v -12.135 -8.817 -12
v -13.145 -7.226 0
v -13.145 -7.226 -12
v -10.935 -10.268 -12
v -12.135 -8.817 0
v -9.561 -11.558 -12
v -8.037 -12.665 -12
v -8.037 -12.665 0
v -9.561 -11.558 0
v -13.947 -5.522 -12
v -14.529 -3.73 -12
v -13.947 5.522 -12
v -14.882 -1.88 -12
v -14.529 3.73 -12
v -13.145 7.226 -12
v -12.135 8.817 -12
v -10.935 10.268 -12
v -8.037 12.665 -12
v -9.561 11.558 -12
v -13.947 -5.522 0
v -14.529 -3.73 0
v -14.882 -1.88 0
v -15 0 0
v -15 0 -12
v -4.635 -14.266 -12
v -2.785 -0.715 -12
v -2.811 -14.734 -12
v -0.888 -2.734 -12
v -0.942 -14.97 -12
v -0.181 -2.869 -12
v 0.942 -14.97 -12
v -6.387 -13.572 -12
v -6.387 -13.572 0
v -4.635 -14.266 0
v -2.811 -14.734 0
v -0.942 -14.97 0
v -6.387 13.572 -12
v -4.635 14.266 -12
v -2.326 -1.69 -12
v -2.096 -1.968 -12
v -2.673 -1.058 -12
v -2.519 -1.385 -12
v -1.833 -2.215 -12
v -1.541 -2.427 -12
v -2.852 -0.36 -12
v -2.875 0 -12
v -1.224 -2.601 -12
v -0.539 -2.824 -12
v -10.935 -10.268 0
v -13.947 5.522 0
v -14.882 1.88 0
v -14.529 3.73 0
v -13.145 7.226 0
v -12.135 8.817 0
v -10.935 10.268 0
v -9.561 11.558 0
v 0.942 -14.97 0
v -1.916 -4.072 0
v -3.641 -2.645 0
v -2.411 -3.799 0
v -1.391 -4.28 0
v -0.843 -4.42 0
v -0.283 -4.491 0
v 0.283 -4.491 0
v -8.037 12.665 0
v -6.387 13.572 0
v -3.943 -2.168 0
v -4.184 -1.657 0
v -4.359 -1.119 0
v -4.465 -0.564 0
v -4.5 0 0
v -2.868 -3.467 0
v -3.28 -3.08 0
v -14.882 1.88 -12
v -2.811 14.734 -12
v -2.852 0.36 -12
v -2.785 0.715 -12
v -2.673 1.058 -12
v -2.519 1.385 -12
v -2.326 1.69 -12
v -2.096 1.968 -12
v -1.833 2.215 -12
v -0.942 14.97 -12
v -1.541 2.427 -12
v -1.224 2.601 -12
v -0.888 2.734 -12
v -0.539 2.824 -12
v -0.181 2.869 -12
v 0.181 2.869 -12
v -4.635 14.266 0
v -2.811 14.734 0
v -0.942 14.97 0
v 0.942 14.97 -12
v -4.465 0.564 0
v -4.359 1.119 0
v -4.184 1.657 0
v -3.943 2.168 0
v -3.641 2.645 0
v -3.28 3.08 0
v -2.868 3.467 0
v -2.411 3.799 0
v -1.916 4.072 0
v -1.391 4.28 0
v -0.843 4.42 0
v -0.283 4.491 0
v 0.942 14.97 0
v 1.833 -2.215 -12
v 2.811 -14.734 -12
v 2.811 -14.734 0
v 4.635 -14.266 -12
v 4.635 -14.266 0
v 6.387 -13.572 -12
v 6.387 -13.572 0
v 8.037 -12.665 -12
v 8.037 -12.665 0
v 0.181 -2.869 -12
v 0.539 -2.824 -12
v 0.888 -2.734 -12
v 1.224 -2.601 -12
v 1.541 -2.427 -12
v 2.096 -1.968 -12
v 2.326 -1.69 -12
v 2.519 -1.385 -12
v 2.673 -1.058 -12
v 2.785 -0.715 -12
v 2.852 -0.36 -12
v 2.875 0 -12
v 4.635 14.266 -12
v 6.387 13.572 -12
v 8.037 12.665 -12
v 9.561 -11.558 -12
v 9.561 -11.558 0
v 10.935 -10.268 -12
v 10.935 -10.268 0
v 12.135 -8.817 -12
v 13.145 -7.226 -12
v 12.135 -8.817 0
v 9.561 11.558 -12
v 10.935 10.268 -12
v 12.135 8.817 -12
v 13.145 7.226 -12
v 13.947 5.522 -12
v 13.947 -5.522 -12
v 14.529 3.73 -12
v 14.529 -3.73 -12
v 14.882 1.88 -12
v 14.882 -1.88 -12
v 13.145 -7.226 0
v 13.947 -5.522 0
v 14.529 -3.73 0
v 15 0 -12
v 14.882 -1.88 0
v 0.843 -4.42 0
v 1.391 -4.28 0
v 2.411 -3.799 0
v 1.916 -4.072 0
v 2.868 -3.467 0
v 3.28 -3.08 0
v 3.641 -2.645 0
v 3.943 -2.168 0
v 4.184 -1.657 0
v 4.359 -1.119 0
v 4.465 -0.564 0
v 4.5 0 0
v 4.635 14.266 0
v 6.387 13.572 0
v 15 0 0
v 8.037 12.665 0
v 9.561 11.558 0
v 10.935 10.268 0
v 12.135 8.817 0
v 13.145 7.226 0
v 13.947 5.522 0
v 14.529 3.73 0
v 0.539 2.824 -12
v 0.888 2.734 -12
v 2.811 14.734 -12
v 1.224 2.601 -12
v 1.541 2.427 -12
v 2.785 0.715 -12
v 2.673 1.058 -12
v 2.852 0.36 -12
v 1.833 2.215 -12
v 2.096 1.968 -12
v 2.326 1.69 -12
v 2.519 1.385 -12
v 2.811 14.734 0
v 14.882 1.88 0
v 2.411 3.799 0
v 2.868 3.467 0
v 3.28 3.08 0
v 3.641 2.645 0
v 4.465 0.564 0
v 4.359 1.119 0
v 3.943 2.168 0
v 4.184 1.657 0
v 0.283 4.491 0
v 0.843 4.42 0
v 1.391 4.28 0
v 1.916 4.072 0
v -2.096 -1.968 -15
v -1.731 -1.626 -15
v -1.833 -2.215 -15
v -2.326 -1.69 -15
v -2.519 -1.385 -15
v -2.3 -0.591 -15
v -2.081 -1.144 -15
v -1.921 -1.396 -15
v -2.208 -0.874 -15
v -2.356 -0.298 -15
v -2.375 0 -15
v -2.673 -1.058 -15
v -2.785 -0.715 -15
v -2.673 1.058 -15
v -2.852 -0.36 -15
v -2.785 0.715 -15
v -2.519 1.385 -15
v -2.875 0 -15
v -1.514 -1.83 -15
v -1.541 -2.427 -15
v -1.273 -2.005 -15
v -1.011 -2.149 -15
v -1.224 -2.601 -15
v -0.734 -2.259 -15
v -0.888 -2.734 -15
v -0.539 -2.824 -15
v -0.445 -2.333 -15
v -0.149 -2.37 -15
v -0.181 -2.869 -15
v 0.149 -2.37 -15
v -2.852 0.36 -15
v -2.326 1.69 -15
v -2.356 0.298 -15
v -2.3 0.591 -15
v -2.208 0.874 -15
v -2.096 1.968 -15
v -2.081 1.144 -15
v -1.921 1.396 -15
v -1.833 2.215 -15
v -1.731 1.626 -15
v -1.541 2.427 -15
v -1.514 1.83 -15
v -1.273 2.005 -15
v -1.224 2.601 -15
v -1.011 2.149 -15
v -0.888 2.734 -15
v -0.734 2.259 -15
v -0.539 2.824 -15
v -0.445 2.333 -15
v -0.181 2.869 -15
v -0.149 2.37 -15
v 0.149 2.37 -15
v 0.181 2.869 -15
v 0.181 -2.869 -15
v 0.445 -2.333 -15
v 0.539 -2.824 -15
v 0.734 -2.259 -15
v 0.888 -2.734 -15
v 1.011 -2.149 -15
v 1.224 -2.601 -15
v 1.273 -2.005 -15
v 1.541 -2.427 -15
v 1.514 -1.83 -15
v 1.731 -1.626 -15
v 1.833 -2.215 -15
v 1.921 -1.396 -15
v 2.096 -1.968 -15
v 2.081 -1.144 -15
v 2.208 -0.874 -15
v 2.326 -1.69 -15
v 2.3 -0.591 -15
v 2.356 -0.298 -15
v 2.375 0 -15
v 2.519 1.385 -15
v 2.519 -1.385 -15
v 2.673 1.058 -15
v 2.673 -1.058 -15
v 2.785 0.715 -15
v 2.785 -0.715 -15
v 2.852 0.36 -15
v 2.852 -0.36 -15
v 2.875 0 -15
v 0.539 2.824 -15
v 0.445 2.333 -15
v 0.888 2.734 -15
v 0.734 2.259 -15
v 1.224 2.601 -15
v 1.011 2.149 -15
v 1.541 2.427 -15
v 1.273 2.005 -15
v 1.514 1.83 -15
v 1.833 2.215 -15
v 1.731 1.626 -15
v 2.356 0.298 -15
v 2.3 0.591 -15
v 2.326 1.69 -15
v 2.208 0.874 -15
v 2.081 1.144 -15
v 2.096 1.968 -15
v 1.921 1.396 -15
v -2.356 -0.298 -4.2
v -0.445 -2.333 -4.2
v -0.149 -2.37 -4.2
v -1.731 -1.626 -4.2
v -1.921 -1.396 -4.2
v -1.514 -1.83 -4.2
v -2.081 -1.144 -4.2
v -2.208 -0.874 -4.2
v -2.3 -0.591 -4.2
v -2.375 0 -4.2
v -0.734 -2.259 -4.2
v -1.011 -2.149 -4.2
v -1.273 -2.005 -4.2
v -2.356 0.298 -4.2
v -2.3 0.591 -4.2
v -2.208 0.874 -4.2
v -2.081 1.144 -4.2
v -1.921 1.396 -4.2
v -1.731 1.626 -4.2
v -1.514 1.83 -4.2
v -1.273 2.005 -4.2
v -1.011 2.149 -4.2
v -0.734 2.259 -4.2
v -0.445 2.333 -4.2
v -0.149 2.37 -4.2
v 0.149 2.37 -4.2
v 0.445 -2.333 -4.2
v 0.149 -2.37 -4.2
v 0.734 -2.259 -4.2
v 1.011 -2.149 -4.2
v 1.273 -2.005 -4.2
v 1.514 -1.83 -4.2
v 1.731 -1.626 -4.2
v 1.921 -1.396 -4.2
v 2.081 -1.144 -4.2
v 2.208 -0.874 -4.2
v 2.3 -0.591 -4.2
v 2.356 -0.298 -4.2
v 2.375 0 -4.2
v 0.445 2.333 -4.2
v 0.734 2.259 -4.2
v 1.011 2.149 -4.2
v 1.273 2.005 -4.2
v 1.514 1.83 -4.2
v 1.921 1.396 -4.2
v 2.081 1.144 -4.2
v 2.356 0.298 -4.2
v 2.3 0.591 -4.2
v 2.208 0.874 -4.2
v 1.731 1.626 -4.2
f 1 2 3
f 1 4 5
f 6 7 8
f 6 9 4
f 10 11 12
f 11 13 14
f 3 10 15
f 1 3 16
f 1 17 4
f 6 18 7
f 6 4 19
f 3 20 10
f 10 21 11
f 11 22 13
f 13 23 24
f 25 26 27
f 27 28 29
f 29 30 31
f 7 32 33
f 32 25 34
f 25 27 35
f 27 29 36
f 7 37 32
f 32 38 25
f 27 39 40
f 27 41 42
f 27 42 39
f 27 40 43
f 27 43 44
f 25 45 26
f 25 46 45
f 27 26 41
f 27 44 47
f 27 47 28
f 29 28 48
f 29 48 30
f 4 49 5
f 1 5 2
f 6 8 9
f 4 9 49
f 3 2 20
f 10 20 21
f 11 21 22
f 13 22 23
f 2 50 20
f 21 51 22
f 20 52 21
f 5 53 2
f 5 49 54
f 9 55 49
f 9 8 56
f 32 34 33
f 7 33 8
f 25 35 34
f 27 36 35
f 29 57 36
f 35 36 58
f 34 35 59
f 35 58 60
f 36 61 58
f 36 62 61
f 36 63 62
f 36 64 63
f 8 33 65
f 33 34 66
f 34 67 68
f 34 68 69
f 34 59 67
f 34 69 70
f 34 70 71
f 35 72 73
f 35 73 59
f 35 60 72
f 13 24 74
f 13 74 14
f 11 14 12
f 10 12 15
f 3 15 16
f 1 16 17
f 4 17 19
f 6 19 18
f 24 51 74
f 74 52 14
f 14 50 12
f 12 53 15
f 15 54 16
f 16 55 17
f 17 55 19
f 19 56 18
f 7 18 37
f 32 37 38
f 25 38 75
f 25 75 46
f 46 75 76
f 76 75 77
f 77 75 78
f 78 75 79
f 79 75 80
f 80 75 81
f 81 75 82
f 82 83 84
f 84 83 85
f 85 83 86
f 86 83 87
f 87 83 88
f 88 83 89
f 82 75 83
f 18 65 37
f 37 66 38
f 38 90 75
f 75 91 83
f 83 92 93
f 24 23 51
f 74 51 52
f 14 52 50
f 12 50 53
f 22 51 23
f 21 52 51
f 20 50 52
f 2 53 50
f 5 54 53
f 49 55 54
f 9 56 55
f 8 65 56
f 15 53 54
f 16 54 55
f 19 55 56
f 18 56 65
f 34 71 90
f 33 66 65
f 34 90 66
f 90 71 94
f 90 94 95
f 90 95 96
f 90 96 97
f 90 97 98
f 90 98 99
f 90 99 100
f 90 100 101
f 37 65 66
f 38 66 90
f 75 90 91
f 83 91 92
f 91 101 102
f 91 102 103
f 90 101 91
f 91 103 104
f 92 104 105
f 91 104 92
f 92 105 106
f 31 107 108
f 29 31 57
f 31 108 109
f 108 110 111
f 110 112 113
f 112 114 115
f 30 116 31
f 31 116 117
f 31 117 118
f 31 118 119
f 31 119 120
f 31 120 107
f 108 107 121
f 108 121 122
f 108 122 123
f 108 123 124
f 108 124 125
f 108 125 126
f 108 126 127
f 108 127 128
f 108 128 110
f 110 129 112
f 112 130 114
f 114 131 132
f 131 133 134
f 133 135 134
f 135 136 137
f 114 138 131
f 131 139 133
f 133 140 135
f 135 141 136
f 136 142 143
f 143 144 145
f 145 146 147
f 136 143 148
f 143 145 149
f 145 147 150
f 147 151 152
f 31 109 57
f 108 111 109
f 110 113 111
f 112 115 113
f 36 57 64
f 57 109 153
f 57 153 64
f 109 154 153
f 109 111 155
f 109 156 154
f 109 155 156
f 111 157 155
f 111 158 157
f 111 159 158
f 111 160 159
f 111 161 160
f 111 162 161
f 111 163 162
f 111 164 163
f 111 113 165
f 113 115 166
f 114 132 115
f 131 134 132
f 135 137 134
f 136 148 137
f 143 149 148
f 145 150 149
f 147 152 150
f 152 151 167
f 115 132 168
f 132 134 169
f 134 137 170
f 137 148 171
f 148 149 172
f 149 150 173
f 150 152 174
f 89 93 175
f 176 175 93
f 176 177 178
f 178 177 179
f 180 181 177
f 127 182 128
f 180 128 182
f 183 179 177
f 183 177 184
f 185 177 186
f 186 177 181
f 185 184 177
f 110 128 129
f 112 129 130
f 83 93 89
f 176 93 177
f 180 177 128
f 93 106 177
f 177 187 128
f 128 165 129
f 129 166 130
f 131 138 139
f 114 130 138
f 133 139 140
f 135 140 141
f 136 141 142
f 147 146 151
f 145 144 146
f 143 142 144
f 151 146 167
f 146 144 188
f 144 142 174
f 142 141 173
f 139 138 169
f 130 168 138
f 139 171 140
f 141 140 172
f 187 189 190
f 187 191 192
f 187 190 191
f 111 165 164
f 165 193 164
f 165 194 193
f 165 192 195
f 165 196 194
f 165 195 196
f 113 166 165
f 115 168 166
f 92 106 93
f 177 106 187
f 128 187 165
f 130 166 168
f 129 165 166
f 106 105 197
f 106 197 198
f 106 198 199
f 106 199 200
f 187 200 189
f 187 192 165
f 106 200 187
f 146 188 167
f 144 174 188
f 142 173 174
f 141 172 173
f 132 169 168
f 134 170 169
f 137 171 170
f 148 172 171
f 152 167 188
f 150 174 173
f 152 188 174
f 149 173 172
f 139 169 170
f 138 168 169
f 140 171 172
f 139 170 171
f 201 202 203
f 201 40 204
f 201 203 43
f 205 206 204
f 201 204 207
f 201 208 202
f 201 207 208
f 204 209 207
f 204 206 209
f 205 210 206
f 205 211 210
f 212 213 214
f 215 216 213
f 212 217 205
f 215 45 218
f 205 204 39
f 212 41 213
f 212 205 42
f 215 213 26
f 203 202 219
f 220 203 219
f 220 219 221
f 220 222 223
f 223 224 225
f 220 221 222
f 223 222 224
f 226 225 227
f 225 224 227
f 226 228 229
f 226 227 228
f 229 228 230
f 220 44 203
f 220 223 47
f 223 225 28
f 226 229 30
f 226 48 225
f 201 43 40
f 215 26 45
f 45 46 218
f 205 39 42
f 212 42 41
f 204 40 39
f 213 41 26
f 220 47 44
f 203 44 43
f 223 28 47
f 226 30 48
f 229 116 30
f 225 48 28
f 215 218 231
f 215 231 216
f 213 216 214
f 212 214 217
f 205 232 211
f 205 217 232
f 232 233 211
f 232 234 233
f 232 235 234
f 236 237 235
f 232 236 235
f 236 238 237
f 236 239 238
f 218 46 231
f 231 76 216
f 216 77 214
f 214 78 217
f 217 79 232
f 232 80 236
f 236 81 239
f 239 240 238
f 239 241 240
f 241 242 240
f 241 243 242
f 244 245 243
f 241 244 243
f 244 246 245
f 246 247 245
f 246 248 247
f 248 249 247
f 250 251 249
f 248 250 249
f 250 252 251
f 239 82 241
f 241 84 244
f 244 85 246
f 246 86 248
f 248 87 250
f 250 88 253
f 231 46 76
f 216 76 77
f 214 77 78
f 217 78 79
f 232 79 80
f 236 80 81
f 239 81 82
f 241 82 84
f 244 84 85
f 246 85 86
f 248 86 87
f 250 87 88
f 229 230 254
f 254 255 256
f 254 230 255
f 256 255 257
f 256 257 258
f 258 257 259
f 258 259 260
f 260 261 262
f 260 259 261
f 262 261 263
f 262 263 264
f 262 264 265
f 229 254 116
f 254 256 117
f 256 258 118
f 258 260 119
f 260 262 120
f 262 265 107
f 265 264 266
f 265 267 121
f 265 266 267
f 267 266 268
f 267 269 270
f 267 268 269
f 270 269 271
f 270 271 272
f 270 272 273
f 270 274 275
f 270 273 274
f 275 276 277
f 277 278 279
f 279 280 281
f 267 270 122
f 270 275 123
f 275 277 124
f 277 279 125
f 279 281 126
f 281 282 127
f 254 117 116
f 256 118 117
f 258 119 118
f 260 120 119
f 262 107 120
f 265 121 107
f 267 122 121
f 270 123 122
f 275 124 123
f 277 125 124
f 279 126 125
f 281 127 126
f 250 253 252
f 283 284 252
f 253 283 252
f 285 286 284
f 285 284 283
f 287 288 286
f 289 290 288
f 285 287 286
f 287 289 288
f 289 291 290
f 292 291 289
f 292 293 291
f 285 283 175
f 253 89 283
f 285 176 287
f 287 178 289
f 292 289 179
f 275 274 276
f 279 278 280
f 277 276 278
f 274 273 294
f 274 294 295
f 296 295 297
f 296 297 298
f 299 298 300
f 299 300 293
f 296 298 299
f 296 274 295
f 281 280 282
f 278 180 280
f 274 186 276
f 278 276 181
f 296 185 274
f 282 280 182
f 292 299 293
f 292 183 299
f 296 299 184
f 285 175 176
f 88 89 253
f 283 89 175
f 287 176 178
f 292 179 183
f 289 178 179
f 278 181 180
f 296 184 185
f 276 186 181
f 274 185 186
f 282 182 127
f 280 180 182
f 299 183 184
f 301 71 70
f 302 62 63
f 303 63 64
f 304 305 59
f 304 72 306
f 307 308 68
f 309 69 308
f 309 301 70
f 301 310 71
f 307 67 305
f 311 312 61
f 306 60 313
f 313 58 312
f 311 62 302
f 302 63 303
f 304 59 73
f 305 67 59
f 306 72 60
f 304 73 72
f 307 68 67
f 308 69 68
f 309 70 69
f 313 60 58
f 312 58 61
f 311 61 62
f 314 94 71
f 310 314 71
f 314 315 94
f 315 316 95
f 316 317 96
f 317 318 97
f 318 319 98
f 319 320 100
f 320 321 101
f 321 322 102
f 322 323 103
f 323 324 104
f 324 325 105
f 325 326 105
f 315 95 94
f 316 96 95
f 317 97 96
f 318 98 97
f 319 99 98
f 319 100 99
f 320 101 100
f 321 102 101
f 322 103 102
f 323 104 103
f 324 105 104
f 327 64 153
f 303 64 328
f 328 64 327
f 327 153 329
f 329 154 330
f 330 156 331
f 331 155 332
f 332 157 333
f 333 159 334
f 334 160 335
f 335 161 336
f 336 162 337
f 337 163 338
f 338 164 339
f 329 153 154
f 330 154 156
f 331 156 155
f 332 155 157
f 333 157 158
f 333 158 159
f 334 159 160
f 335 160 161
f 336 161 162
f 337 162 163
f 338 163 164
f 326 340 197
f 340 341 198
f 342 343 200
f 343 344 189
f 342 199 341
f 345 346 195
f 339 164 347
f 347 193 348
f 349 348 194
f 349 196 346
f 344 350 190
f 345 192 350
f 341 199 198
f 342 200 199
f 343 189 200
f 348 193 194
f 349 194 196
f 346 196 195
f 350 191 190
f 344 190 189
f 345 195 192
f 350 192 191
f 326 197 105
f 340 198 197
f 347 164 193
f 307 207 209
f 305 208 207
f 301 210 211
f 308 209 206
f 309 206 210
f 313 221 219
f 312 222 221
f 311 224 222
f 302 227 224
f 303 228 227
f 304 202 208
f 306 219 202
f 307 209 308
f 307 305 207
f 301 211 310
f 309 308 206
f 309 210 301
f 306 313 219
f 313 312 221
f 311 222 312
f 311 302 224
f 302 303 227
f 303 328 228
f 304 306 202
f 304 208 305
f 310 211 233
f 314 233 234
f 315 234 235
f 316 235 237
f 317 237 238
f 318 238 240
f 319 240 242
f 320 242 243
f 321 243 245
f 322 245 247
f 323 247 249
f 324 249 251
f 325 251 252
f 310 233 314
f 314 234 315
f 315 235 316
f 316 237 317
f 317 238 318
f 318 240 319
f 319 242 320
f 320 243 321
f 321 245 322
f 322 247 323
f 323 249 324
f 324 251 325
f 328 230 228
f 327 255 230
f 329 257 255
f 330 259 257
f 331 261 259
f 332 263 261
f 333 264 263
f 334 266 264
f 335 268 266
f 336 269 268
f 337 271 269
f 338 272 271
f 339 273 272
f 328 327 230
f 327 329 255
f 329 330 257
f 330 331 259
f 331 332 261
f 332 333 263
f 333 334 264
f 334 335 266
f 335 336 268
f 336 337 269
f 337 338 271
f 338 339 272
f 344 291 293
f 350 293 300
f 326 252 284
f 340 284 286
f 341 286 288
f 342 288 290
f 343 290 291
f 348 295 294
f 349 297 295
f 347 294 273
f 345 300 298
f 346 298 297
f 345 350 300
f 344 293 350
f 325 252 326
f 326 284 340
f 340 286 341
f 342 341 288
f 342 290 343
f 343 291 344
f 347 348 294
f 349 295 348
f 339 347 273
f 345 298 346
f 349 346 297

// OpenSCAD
$fn = 50;


difference() {
	union() {
		translate(v = [0, 0, -12.0000000000]) {
			cylinder(h = 12, r = 15.0000000000);
		}
		#translate(v = [0, 0, -15.0000000000]) {
			cylinder(h = 15, r = 2.8750000000);
		}
	}
	union() {
		translate(v = [0, 0, 0]) {
			rotate(a = [0, 0, 0]) {
				difference() {
					union() {
						translate(v = [0, 0, -15.0000000000]) {
							cylinder(h = 15, r = 2.2500000000);
						}
						translate(v = [0, 0, -4.2000000000]) {
							cylinder(h = 4.2000000000, r1 = 2.3750000000, r2 = 4.5000000000);
						}
						translate(v = [0, 0, -15.0000000000]) {
							cylinder(h = 15, r = 2.3750000000);
						}
						translate(v = [0, 0, -15.0000000000]) {
							cylinder(h = 15, r = 2.2500000000);
						}
					}
					union();
				}
			}
		}
	}
}
